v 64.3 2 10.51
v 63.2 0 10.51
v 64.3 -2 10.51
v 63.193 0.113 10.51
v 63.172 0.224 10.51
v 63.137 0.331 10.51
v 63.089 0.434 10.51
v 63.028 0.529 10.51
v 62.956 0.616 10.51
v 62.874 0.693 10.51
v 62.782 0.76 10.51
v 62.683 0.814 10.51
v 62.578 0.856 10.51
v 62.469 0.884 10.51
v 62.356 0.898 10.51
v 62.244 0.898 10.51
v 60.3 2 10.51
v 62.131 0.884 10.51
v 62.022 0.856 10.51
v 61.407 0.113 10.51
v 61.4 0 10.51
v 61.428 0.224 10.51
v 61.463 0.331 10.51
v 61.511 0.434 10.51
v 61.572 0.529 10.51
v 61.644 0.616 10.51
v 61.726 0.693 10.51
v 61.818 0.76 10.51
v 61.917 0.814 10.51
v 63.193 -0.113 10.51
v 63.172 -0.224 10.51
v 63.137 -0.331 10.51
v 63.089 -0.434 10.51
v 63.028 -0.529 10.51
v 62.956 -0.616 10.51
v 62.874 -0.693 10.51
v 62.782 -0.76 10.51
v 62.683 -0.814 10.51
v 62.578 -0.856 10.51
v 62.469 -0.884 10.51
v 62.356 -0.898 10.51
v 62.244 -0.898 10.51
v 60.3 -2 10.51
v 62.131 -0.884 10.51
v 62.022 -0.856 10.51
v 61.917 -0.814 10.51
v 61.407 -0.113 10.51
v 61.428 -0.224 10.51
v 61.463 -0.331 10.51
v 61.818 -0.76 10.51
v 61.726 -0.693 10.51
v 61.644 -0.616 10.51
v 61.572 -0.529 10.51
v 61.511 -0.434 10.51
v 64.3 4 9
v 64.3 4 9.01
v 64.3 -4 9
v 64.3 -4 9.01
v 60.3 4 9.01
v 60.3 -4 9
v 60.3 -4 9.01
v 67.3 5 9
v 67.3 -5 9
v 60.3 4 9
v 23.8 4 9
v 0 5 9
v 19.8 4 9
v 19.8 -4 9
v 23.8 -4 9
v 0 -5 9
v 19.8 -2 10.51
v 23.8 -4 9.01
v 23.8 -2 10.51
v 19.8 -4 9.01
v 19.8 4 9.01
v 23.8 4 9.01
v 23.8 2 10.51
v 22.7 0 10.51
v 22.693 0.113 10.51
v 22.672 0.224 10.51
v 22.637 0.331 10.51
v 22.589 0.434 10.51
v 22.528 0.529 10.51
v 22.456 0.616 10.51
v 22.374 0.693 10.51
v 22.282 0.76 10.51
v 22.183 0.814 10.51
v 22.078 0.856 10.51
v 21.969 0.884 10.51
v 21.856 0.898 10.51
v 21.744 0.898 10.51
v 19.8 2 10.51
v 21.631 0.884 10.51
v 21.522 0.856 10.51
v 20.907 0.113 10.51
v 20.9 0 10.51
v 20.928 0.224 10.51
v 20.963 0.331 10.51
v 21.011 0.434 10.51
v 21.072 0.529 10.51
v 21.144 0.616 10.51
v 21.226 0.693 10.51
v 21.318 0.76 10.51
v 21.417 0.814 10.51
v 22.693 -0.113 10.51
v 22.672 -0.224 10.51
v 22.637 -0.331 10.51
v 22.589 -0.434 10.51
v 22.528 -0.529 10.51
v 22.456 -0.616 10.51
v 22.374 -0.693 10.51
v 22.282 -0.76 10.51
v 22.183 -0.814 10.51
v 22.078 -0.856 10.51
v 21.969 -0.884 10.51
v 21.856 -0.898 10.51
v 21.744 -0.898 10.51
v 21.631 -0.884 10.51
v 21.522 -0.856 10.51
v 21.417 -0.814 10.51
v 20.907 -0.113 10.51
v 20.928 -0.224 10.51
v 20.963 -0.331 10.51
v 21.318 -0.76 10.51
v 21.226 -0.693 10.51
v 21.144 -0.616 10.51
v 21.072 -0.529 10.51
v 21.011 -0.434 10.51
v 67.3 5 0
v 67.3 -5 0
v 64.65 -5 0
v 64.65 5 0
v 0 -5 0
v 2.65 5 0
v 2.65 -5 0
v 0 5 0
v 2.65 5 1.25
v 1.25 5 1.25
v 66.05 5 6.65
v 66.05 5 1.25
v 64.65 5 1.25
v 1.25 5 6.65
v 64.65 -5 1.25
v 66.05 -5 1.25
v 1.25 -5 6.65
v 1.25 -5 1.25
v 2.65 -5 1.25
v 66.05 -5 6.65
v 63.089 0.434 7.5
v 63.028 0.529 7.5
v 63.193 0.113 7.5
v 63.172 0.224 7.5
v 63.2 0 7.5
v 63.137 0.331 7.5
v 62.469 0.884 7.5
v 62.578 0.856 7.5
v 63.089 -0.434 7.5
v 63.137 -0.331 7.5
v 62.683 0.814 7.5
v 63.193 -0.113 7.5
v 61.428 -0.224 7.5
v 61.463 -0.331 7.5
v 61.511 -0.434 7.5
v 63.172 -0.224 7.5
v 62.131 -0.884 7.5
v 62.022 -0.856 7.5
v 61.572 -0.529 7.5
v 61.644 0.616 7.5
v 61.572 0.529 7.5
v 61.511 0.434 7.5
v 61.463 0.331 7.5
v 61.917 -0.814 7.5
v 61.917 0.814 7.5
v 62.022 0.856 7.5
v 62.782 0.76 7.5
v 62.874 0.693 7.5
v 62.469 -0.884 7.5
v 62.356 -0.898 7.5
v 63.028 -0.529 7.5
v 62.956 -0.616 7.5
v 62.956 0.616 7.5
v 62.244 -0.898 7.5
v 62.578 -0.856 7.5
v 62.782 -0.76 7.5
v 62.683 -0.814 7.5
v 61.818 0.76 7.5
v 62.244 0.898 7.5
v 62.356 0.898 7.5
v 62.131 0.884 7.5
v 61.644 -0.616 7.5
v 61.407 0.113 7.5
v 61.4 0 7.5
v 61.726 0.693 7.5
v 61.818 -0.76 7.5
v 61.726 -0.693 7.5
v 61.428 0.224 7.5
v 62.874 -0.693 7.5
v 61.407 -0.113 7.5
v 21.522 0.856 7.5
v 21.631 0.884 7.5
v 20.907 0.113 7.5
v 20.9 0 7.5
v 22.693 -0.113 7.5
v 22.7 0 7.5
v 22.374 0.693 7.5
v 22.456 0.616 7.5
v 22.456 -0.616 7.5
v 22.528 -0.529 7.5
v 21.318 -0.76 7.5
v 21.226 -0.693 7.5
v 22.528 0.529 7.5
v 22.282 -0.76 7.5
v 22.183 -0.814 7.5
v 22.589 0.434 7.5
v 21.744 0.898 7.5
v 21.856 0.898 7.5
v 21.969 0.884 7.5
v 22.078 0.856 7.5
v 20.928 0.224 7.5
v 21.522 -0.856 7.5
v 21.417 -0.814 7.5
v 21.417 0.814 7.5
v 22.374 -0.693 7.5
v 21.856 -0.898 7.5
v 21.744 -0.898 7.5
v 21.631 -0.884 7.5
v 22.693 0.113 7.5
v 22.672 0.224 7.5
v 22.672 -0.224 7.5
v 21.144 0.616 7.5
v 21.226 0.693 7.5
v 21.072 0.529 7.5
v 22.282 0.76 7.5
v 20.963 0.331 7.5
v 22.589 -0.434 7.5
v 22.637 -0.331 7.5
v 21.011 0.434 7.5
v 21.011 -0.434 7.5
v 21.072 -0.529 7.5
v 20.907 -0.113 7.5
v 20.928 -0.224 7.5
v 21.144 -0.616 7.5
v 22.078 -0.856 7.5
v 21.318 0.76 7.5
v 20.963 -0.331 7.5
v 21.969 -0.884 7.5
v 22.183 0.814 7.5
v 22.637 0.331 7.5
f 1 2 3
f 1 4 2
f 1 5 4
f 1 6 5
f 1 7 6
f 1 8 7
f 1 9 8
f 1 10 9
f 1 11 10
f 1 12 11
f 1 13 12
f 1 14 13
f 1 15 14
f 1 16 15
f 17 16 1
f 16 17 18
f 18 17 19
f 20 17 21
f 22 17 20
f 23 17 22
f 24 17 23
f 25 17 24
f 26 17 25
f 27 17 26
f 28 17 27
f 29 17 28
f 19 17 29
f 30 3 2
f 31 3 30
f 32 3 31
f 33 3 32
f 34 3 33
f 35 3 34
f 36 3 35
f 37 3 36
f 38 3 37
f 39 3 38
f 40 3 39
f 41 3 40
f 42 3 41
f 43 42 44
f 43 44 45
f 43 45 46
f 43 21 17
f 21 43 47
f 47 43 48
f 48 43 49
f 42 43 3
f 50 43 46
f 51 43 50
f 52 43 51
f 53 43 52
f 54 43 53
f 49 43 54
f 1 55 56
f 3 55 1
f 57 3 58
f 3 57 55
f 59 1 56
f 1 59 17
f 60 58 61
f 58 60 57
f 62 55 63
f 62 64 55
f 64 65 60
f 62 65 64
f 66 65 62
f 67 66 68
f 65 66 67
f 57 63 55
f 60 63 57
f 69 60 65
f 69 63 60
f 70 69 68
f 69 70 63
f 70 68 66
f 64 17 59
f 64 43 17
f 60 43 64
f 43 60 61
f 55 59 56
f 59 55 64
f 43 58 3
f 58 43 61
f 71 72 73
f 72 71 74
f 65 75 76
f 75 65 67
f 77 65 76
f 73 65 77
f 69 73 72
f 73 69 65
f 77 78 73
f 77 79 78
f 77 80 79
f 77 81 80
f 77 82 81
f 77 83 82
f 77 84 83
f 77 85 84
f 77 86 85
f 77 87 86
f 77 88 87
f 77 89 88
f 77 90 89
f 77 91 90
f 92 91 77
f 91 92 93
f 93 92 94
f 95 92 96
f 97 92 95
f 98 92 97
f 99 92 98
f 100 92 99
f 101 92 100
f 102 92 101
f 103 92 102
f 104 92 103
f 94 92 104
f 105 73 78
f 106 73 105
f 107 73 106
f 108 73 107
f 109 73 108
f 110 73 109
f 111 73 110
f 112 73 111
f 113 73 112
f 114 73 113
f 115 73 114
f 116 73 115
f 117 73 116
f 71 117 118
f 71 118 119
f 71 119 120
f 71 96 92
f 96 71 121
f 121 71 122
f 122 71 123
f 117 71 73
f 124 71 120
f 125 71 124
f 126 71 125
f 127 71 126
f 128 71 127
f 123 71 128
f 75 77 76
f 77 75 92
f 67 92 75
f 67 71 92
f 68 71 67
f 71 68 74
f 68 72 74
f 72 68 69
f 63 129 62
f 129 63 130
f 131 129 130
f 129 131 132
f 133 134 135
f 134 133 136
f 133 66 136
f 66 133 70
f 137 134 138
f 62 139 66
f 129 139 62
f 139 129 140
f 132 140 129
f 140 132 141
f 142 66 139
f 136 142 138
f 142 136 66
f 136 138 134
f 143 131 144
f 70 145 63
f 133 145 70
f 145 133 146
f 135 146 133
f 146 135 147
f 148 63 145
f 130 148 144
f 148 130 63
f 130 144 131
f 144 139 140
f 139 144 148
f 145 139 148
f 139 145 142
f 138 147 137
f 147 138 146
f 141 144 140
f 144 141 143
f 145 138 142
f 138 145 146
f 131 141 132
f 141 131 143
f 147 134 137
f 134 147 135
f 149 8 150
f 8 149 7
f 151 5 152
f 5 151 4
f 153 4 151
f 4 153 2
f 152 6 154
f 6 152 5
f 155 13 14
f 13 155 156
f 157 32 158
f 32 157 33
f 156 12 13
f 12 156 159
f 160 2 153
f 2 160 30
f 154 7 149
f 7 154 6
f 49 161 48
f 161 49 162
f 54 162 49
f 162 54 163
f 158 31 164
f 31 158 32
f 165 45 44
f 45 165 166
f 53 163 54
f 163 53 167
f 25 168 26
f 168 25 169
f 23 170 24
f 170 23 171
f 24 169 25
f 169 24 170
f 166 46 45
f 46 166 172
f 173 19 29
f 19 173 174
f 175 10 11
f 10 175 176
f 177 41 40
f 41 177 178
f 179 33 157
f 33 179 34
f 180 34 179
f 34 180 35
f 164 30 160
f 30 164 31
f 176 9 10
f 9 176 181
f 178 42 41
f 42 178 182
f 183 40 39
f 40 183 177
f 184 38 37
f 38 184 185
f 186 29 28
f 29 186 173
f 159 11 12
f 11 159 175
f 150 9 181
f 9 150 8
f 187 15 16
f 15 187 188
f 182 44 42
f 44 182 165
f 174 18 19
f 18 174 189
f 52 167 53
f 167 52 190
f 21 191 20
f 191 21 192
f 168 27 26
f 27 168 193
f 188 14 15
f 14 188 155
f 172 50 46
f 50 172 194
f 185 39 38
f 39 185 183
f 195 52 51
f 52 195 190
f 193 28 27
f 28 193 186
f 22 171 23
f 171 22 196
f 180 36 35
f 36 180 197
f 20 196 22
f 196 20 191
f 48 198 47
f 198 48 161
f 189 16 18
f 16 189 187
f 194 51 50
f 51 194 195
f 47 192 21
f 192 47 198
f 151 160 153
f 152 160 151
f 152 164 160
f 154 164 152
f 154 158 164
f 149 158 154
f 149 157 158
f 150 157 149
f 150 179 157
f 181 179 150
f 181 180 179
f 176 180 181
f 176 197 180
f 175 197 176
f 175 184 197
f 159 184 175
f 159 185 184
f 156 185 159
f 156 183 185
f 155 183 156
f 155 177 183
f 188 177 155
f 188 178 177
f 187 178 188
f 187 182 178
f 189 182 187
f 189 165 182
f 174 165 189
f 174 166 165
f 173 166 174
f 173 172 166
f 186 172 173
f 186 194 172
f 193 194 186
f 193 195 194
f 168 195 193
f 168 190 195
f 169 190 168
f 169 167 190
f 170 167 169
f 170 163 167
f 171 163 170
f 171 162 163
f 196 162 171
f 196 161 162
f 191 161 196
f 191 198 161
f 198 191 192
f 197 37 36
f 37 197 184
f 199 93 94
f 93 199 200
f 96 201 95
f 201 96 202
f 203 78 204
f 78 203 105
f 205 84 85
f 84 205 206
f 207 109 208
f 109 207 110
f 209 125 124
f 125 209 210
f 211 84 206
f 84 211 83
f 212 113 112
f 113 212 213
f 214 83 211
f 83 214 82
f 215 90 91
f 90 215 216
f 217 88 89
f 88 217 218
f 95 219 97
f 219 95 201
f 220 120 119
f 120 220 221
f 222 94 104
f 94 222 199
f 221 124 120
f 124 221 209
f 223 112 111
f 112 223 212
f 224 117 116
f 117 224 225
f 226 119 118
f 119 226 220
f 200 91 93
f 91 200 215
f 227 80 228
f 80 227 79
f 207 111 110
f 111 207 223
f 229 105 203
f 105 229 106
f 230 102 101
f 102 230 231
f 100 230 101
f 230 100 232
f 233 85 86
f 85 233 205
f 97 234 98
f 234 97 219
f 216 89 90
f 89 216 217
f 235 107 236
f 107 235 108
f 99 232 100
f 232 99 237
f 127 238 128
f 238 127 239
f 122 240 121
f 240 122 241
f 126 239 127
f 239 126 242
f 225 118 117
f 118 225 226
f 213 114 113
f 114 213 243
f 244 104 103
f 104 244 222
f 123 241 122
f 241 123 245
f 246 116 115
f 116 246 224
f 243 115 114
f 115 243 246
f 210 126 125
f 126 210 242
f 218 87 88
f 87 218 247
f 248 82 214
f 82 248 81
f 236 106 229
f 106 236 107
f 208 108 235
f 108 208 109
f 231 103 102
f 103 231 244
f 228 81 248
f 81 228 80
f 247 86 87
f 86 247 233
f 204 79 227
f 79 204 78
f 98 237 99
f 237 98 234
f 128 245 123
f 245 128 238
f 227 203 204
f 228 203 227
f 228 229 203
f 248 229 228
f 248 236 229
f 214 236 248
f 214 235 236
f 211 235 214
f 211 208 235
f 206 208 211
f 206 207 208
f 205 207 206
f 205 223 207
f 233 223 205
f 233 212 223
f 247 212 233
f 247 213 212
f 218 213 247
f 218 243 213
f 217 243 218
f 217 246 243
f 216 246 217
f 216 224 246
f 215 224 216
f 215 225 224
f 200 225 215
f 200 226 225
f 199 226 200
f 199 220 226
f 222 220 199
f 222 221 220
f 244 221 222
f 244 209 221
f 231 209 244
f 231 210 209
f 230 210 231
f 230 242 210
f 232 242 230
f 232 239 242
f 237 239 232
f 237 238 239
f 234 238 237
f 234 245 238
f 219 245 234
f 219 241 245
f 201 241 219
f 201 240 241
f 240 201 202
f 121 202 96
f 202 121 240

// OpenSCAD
// file: modules/scad-utils/mirror.scad
// Copyright (c) 2013 Oskar Linde. All rights reserved.
// License: BSD
//
// This library contains simple mirroring functions
//
// mirror_x()
// mirror_y()
// mirror_z()


module mirror_x() {
  union() {
    child();
    scale([-1,1,1]) child();
  }
}

module mirror_y() {
  union() {
    child();
    scale([1,-1,1]) child();
  }
}

module mirror_z() {
  union() {
    child();
    scale([1,1,-1]) child();
  }
}
// file: modules/opiz_mount.scad
include <scad-utils/mirror.scad>

include <./lcd_holder_base.scad>

OPIZ_HOLES_BETWEEN_X=40.5;
OPIZ_HOLES_BETWEEN_Y=42;

OPIZ_MOUNT_X=4;
OPIZ_MOUNT_Z=1.5;
OPIZ_MOUNT_Y=OPIZ_MOUNT_X+4;

module opiz_mount_holes() {
  mirror_x()
  translate([OPIZ_HOLES_BETWEEN_X/2, 0, -1.5]) 
  cylinder(d=1.8, h=10, center=!true);
}

module opiz_mount_base() {
  mirror_x()
  translate([OPIZ_HOLES_BETWEEN_X/2, 0, 0]){
    // trapezoid
    hull(){
      // top
      translate([0, 0, OPIZ_MOUNT_Z])
      linear_extrude(height=0.01, center=!true, convexity=10, twist=0)
      square(size=[OPIZ_MOUNT_X, OPIZ_MOUNT_X], center=true);

      // bottom
      linear_extrude(height=0.01, center=!true, convexity=10, twist=0)
      square(size=[OPIZ_MOUNT_X, OPIZ_MOUNT_Y], center=true);
    }
  }
}

module opiz_mount(holes=false) {
  translate([-OPIZ_HOLES_BETWEEN_X/2 - OPIZ_MOUNT_X/2 + HOLDER_X - 3, 0, HOLDER_Z])
  if (holes){
    opiz_mount_holes();
  }else{
    opiz_mount_base();
  }
}
// file: modules/lcd_holder_base.scad
include <./lcd.scad>

HOLDER_X=LCD_X+3;
HOLDER_Y=10;
HOLDER_Z=9;
HOLDER_LCD_BOTTOM_T=1.5;
HOLDER_FRONT_T=1.5;

module holder_base() {
  translate([HOLDER_X/2, 0, HOLDER_Z/2]) 
  cube(size=[HOLDER_X, HOLDER_Y, HOLDER_Z], center=true);
}

module holder_diff() {
  // space for LCD
  translate([HOLDER_LCD_BOTTOM_T, 0, HOLDER_FRONT_T]) 
  lcd(0.5);

  // window for LCD
  LCD_CENTER_X=LCD_X/2 + HOLDER_LCD_BOTTOM_T;
  translate([LCD_CENTER_X, 0, 0]) 
  cube(size=[LCD_DISP_X+4, HOLDER_Y*2, 3], center=true);
}
// file: modules/lcd.scad
LCD_X=64.3;
LCD_Y=232.0;
LCD_Z=4.9;
LCD_DISP_X=58;

module lcd(margin=0, draw_display_region=false) {
  translate([LCD_X/2, 0, LCD_Z/2]){
    cube(size=[LCD_X+margin, LCD_Y+margin, LCD_Z+margin], center=true);

    if(draw_display_region){
      translate([0, -2, 0]) 
      color("green", 0.5)
      cube(size=[LCD_DISP_X, LCD_Y-8, LCD_Z], center=true);
    }
  }
}
// main file
include <./modules/lcd.scad>
include <./modules/lcd_holder_base.scad>
include <./modules/opiz_mount.scad>

$fn=50;


module landscapi_opiz_mount() {
  difference(){
    union(){
      holder_base();

      // Orange Pi Zero mount
      opiz_mount();
    }

    holder_diff();

    // Orange Pi Zero mount (screw holes)
    opiz_mount(holes=true);
  }
}

// LCD
%
translate([HOLDER_LCD_BOTTOM_T, 0, HOLDER_FRONT_T]) 
lcd(margin=0, draw_display_region=true);

landscapi_opiz_mount();
